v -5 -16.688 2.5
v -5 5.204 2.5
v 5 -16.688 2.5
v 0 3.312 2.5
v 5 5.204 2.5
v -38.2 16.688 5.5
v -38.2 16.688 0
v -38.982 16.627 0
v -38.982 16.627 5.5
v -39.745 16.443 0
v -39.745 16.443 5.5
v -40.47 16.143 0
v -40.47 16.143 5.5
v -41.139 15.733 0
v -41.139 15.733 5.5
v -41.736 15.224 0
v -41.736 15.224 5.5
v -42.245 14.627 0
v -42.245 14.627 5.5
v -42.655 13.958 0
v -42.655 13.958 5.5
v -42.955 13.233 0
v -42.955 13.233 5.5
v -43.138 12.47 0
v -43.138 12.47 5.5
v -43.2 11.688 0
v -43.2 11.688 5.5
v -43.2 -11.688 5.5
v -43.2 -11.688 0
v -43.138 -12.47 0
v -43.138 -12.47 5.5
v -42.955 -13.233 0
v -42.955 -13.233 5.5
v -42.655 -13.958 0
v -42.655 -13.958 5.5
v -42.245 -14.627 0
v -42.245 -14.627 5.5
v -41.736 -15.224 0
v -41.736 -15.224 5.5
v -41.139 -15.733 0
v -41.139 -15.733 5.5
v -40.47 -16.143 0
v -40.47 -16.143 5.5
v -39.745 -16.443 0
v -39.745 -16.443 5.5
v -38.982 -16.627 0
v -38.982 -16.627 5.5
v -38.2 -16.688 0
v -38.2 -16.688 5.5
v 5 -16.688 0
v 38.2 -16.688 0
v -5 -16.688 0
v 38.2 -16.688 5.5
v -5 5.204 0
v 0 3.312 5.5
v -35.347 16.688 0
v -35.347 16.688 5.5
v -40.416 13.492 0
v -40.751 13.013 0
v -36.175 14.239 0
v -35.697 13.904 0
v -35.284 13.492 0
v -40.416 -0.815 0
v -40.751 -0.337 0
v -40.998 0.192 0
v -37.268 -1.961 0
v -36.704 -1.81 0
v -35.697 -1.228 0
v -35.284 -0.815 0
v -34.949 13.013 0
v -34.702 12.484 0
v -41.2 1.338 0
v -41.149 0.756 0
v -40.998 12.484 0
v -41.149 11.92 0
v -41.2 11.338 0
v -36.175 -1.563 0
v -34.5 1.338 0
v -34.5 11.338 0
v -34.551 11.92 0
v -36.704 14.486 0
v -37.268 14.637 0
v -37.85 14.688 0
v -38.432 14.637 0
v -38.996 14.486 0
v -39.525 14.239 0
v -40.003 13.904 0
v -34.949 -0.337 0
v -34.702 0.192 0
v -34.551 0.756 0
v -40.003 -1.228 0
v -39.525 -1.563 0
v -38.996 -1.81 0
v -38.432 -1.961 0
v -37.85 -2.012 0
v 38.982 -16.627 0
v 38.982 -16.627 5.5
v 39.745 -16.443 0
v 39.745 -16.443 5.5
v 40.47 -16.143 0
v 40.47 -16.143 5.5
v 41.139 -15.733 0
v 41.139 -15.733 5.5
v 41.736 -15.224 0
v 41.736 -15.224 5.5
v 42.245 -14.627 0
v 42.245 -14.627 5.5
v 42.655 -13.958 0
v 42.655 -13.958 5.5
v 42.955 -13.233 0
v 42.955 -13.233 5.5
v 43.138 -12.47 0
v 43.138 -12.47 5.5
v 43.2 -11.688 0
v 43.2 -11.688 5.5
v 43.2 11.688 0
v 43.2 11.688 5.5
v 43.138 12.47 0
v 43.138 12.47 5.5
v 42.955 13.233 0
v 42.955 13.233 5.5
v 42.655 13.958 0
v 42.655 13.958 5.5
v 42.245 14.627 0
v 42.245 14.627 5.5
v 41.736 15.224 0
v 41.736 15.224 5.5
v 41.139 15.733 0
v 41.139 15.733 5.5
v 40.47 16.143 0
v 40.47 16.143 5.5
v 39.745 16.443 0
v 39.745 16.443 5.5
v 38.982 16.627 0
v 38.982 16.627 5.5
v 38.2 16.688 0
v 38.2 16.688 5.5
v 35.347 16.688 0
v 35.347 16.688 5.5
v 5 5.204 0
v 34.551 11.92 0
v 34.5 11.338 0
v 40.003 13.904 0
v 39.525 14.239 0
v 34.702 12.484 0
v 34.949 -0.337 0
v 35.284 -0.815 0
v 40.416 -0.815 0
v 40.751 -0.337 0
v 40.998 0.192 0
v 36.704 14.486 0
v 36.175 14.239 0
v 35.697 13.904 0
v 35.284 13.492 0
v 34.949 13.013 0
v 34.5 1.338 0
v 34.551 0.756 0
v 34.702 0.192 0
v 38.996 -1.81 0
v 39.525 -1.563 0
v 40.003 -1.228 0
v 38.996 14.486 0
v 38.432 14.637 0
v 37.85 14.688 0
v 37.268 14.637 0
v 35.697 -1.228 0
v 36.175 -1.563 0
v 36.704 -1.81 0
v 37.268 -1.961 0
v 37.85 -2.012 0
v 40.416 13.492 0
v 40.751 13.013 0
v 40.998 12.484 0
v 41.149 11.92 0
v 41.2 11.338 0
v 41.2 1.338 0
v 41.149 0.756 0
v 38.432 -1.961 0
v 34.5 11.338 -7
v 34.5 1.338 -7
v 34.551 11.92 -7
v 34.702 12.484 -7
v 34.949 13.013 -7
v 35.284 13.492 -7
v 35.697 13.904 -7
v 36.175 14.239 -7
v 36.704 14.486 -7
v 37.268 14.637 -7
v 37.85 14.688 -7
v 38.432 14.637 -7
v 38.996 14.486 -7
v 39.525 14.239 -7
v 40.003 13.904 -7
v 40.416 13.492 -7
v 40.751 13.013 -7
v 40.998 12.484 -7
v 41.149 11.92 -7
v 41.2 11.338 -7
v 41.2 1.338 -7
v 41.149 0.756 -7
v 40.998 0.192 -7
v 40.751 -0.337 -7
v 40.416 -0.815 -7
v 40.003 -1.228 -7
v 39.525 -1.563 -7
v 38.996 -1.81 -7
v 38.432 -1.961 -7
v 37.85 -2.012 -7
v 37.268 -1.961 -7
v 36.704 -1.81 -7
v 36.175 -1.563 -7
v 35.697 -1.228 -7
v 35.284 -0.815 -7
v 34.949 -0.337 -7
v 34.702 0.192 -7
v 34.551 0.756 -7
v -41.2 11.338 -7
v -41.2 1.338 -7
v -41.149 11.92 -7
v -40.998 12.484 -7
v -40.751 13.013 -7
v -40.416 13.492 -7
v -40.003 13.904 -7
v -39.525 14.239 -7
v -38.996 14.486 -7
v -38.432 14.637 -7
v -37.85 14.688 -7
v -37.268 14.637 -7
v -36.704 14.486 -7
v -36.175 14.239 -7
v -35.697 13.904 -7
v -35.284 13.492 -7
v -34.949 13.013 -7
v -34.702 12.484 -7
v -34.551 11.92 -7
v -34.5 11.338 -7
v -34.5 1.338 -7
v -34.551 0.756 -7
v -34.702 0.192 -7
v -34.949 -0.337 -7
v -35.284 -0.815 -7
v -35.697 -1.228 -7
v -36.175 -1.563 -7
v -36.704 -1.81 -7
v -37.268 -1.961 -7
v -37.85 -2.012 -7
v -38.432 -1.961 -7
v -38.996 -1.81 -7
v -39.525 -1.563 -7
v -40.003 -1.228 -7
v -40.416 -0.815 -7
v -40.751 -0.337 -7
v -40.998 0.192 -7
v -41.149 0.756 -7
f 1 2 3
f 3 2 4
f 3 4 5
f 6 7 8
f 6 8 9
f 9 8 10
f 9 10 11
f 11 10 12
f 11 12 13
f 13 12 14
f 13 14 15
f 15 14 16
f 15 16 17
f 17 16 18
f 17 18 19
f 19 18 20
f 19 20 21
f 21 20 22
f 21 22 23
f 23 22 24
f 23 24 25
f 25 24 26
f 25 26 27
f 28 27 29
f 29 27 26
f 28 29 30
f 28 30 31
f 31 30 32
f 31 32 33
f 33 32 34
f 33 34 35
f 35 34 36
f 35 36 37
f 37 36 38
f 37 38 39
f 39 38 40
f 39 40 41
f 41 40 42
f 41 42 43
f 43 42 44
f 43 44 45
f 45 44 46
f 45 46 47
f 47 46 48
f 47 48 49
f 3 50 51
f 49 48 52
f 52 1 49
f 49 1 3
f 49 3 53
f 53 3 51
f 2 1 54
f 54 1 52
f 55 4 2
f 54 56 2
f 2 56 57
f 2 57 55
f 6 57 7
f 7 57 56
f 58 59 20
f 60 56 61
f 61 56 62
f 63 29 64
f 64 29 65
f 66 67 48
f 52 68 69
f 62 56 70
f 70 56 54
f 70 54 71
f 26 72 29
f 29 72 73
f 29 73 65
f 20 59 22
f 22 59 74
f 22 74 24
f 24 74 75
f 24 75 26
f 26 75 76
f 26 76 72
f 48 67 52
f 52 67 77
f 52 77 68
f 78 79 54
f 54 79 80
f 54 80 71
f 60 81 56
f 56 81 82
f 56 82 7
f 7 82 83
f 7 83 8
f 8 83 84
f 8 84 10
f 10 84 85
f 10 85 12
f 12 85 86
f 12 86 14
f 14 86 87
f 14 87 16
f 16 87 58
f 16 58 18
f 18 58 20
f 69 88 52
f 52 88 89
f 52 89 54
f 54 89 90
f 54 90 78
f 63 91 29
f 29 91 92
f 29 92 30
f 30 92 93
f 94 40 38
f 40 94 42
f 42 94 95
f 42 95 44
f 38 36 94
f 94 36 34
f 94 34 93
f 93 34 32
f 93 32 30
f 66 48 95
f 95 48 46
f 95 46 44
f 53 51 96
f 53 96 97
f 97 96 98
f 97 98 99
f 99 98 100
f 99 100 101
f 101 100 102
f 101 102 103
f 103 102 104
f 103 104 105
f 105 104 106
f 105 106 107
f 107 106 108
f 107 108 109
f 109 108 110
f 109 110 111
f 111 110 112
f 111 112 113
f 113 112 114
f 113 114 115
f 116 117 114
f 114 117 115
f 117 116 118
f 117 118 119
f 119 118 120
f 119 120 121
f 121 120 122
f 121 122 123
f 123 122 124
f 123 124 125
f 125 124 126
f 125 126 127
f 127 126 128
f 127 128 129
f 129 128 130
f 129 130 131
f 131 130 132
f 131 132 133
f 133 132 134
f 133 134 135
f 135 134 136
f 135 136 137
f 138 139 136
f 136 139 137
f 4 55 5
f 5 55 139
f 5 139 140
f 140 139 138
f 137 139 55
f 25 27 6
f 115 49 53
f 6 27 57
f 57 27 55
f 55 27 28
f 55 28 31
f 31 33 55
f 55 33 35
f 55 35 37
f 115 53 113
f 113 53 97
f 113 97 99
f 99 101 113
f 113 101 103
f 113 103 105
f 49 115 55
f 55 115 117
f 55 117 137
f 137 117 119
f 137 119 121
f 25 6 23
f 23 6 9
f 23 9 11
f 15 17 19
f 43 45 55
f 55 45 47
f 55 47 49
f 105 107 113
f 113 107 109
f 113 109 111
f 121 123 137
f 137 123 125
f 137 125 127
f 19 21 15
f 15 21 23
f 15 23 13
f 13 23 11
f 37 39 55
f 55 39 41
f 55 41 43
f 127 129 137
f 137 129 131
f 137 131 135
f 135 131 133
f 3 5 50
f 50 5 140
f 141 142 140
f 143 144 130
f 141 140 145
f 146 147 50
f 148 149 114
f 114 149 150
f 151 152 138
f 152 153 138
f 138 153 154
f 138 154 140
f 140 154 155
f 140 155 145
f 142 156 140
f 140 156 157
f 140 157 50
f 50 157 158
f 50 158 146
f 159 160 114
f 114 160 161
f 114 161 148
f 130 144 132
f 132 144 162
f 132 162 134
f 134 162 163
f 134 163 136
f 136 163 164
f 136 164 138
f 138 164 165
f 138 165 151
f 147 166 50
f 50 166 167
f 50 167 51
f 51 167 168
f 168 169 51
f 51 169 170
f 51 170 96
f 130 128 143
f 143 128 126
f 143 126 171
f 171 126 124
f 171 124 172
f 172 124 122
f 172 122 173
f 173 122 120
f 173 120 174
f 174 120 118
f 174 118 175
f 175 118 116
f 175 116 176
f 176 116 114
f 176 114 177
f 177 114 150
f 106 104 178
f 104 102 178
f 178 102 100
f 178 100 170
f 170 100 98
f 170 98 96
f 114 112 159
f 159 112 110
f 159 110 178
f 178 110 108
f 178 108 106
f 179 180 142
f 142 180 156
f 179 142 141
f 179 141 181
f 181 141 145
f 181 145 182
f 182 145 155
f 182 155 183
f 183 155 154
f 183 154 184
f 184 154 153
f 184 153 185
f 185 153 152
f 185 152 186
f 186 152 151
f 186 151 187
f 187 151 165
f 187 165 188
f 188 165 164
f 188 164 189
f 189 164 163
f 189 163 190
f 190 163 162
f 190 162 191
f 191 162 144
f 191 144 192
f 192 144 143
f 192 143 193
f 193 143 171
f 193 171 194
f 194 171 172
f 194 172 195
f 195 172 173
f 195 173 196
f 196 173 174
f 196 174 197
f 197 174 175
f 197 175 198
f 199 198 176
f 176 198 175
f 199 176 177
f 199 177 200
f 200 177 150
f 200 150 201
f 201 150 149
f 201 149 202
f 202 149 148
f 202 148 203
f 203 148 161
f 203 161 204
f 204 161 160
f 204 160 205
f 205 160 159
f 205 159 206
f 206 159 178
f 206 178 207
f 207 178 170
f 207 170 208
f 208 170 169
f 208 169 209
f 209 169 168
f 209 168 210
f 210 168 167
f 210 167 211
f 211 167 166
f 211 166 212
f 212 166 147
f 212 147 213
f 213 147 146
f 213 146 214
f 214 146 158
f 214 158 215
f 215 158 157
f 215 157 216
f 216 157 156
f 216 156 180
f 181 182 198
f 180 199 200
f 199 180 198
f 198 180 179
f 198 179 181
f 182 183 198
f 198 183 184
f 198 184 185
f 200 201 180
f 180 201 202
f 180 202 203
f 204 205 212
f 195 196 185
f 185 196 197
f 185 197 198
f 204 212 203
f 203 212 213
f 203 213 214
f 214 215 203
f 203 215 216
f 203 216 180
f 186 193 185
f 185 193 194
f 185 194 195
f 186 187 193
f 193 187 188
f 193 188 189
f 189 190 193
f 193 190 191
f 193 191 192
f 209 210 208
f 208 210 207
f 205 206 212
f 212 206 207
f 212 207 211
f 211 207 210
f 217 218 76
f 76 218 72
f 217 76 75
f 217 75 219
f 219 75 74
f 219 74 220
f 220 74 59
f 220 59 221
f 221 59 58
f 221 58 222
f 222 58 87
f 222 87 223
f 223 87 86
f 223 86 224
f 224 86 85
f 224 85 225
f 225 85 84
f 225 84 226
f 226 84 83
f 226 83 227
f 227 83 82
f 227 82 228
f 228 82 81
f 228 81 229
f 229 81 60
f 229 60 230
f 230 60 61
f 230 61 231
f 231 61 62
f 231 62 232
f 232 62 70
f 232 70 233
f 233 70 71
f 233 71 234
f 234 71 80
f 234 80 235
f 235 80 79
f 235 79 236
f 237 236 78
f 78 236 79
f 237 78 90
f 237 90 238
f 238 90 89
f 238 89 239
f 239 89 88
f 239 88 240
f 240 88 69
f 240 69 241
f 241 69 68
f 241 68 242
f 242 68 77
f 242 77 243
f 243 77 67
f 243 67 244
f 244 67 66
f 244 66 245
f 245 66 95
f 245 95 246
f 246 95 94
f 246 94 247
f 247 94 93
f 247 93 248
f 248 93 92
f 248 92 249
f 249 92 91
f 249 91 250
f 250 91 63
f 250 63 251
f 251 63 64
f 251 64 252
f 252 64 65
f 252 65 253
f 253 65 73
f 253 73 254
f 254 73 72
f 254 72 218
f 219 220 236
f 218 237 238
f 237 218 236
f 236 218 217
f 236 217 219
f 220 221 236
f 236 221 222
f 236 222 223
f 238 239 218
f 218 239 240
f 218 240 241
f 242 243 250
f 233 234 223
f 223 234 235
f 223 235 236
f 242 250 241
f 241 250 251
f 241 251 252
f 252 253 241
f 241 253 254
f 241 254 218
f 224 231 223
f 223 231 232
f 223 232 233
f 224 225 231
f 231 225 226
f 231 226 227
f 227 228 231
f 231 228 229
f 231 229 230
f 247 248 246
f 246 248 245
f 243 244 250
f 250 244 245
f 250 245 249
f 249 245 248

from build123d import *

# Parameters (mm, degrees)
BOSS_EXTRUDE1_DEPTH = 2.5
BOSS_EXTRUDE3_START = 2.5
BOSS_EXTRUDE3_DEPTH = 3
BOSS_EXTRUDE2_DEPTH = 7


with BuildPart() as part:
    # Sketch1 → Boss-Extrude1 (new body)
    with BuildSketch(Plane.XY):
        with BuildLine():
            ThreePointArc((-43.2, -11.688179282), (-41.735533906, -15.223713187), (-38.2, -16.688179282))
            Line((-38.2, -16.688179282), (-5, -16.688179282))
            Line((-5, -16.688179282), (-5, 5.203986913))
            Line((-5, 5.203986913), (-35.346679904, 16.688179282))
            Line((-35.346679904, 16.688179282), (-38.2, 16.688179282))
            ThreePointArc((-38.2, 16.688179282), (-41.735533906, 15.223713187), (-43.2, 11.688179282))
            Line((-43.2, 11.688179282), (-43.2, -11.688179282))
        make_face()
        with BuildLine():
            ThreePointArc((-41.2, 11.338179282), (-37.85, 14.688179282), (-34.5, 11.338179282))
            Line((-34.5, 11.338179282), (-34.5, 1.338179282))
            ThreePointArc((-34.5, 1.338179282), (-37.85, -2.011820718), (-41.2, 1.338179282))
            Line((-41.2, 1.338179282), (-41.2, 11.338179282))
        make_face(mode=Mode.SUBTRACT)
        with BuildLine():
            Line((-41.2, 11.338179282), (-41.2, 1.338179282))
            ThreePointArc((-41.2, 1.338179282), (-37.85, -2.011820718), (-34.5, 1.338179282))
            Line((-34.5, 1.338179282), (-34.5, 11.338179282))
            ThreePointArc((-34.5, 11.338179282), (-37.85, 14.688179282), (-41.2, 11.338179282))
        make_face()
        with BuildLine():
            Line((5, 5.203986913), (5, -16.688179282))
            Line((5, -16.688179282), (38.2, -16.688179282))
            ThreePointArc((38.2, -16.688179282), (41.735533906, -15.223713187), (43.2, -11.688179282))
            Line((43.2, -11.688179282), (43.2, 11.688179282))
            ThreePointArc((43.2, 11.688179282), (41.735533906, 15.223713187), (38.2, 16.688179282))
            Line((38.2, 16.688179282), (35.346679904, 16.688179282))
            Line((35.346679904, 16.688179282), (5, 5.203986913))
        make_face()
        with BuildLine():
            ThreePointArc((34.5, 11.338179282), (37.85, 14.688179282), (41.2, 11.338179282))
            Line((41.2, 11.338179282), (41.2, 1.338179282))
            ThreePointArc((41.2, 1.338179282), (37.85, -2.011820718), (34.5, 1.338179282))
            Line((34.5, 1.338179282), (34.5, 11.338179282))
        make_face(mode=Mode.SUBTRACT)
        with BuildLine():
            Line((34.5, 11.338179282), (34.5, 1.338179282))
            ThreePointArc((34.5, 1.338179282), (37.85, -2.011820718), (41.2, 1.338179282))
            Line((41.2, 1.338179282), (41.2, 11.338179282))
            ThreePointArc((41.2, 11.338179282), (37.85, 14.688179282), (34.5, 11.338179282))
        make_face()
    extrude(amount=BOSS_EXTRUDE1_DEPTH)

    # Sketch1<4> → Boss-Extrude3 (add)
    with BuildSketch(Plane.XY.offset(BOSS_EXTRUDE3_START)):
        with BuildLine():
            ThreePointArc((-43.2, -11.688179282), (-41.735533906, -15.223713187), (-38.2, -16.688179282))
            Line((-38.2, -16.688179282), (-5, -16.688179282))
            Line((-5, -16.688179282), (-5, 5.203986913))
            Line((-5, 5.203986913), (-35.346679904, 16.688179282))
            Line((-35.346679904, 16.688179282), (-38.2, 16.688179282))
            ThreePointArc((-38.2, 16.688179282), (-41.735533906, 15.223713187), (-43.2, 11.688179282))
            Line((-43.2, 11.688179282), (-43.2, -11.688179282))
        make_face()
        with BuildLine():
            ThreePointArc((-41.2, 11.338179282), (-37.85, 14.688179282), (-34.5, 11.338179282))
            Line((-34.5, 11.338179282), (-34.5, 1.338179282))
            ThreePointArc((-34.5, 1.338179282), (-37.85, -2.011820718), (-41.2, 1.338179282))
            Line((-41.2, 1.338179282), (-41.2, 11.338179282))
        make_face(mode=Mode.SUBTRACT)
        Polygon((-5, 5.203986913), (-5, -16.688179282), (5, -16.688179282), (5, 5.203986913), (0, 3.311820718), align=None)
        with BuildLine():
            Line((5, 5.203986913), (5, -16.688179282))
            Line((5, -16.688179282), (38.2, -16.688179282))
            ThreePointArc((38.2, -16.688179282), (41.735533906, -15.223713187), (43.2, -11.688179282))
            Line((43.2, -11.688179282), (43.2, 11.688179282))
            ThreePointArc((43.2, 11.688179282), (41.735533906, 15.223713187), (38.2, 16.688179282))
            Line((38.2, 16.688179282), (35.346679904, 16.688179282))
            Line((35.346679904, 16.688179282), (5, 5.203986913))
        make_face()
        with BuildLine():
            ThreePointArc((34.5, 11.338179282), (37.85, 14.688179282), (41.2, 11.338179282))
            Line((41.2, 11.338179282), (41.2, 1.338179282))
            ThreePointArc((41.2, 1.338179282), (37.85, -2.011820718), (34.5, 1.338179282))
            Line((34.5, 1.338179282), (34.5, 11.338179282))
        make_face(mode=Mode.SUBTRACT)
        with BuildLine():
            Line((34.5, 11.338179282), (34.5, 1.338179282))
            ThreePointArc((34.5, 1.338179282), (37.85, -2.011820718), (41.2, 1.338179282))
            Line((41.2, 1.338179282), (41.2, 11.338179282))
            ThreePointArc((41.2, 11.338179282), (37.85, 14.688179282), (34.5, 11.338179282))
        make_face()
        with BuildLine():
            Line((-41.2, 11.338179282), (-41.2, 1.338179282))
            ThreePointArc((-41.2, 1.338179282), (-37.85, -2.011820718), (-34.5, 1.338179282))
            Line((-34.5, 1.338179282), (-34.5, 11.338179282))
            ThreePointArc((-34.5, 11.338179282), (-37.85, 14.688179282), (-41.2, 11.338179282))
        make_face()
    extrude(amount=BOSS_EXTRUDE3_DEPTH)

    # Sketch1<3> → Boss-Extrude2 (add)
    with BuildSketch(Plane.XY):
        with BuildLine():
            Line((34.5, 11.338179282), (34.5, 1.338179282))
            ThreePointArc((34.5, 1.338179282), (37.85, -2.011820718), (41.2, 1.338179282))
            Line((41.2, 1.338179282), (41.2, 11.338179282))
            ThreePointArc((41.2, 11.338179282), (37.85, 14.688179282), (34.5, 11.338179282))
        make_face()
        with BuildLine():
            Line((-41.2, 11.338179282), (-41.2, 1.338179282))
            ThreePointArc((-41.2, 1.338179282), (-37.85, -2.011820718), (-34.5, 1.338179282))
            Line((-34.5, 1.338179282), (-34.5, 11.338179282))
            ThreePointArc((-34.5, 11.338179282), (-37.85, 14.688179282), (-41.2, 11.338179282))
        make_face()
    extrude(amount=-BOSS_EXTRUDE2_DEPTH)


solid = part.part
